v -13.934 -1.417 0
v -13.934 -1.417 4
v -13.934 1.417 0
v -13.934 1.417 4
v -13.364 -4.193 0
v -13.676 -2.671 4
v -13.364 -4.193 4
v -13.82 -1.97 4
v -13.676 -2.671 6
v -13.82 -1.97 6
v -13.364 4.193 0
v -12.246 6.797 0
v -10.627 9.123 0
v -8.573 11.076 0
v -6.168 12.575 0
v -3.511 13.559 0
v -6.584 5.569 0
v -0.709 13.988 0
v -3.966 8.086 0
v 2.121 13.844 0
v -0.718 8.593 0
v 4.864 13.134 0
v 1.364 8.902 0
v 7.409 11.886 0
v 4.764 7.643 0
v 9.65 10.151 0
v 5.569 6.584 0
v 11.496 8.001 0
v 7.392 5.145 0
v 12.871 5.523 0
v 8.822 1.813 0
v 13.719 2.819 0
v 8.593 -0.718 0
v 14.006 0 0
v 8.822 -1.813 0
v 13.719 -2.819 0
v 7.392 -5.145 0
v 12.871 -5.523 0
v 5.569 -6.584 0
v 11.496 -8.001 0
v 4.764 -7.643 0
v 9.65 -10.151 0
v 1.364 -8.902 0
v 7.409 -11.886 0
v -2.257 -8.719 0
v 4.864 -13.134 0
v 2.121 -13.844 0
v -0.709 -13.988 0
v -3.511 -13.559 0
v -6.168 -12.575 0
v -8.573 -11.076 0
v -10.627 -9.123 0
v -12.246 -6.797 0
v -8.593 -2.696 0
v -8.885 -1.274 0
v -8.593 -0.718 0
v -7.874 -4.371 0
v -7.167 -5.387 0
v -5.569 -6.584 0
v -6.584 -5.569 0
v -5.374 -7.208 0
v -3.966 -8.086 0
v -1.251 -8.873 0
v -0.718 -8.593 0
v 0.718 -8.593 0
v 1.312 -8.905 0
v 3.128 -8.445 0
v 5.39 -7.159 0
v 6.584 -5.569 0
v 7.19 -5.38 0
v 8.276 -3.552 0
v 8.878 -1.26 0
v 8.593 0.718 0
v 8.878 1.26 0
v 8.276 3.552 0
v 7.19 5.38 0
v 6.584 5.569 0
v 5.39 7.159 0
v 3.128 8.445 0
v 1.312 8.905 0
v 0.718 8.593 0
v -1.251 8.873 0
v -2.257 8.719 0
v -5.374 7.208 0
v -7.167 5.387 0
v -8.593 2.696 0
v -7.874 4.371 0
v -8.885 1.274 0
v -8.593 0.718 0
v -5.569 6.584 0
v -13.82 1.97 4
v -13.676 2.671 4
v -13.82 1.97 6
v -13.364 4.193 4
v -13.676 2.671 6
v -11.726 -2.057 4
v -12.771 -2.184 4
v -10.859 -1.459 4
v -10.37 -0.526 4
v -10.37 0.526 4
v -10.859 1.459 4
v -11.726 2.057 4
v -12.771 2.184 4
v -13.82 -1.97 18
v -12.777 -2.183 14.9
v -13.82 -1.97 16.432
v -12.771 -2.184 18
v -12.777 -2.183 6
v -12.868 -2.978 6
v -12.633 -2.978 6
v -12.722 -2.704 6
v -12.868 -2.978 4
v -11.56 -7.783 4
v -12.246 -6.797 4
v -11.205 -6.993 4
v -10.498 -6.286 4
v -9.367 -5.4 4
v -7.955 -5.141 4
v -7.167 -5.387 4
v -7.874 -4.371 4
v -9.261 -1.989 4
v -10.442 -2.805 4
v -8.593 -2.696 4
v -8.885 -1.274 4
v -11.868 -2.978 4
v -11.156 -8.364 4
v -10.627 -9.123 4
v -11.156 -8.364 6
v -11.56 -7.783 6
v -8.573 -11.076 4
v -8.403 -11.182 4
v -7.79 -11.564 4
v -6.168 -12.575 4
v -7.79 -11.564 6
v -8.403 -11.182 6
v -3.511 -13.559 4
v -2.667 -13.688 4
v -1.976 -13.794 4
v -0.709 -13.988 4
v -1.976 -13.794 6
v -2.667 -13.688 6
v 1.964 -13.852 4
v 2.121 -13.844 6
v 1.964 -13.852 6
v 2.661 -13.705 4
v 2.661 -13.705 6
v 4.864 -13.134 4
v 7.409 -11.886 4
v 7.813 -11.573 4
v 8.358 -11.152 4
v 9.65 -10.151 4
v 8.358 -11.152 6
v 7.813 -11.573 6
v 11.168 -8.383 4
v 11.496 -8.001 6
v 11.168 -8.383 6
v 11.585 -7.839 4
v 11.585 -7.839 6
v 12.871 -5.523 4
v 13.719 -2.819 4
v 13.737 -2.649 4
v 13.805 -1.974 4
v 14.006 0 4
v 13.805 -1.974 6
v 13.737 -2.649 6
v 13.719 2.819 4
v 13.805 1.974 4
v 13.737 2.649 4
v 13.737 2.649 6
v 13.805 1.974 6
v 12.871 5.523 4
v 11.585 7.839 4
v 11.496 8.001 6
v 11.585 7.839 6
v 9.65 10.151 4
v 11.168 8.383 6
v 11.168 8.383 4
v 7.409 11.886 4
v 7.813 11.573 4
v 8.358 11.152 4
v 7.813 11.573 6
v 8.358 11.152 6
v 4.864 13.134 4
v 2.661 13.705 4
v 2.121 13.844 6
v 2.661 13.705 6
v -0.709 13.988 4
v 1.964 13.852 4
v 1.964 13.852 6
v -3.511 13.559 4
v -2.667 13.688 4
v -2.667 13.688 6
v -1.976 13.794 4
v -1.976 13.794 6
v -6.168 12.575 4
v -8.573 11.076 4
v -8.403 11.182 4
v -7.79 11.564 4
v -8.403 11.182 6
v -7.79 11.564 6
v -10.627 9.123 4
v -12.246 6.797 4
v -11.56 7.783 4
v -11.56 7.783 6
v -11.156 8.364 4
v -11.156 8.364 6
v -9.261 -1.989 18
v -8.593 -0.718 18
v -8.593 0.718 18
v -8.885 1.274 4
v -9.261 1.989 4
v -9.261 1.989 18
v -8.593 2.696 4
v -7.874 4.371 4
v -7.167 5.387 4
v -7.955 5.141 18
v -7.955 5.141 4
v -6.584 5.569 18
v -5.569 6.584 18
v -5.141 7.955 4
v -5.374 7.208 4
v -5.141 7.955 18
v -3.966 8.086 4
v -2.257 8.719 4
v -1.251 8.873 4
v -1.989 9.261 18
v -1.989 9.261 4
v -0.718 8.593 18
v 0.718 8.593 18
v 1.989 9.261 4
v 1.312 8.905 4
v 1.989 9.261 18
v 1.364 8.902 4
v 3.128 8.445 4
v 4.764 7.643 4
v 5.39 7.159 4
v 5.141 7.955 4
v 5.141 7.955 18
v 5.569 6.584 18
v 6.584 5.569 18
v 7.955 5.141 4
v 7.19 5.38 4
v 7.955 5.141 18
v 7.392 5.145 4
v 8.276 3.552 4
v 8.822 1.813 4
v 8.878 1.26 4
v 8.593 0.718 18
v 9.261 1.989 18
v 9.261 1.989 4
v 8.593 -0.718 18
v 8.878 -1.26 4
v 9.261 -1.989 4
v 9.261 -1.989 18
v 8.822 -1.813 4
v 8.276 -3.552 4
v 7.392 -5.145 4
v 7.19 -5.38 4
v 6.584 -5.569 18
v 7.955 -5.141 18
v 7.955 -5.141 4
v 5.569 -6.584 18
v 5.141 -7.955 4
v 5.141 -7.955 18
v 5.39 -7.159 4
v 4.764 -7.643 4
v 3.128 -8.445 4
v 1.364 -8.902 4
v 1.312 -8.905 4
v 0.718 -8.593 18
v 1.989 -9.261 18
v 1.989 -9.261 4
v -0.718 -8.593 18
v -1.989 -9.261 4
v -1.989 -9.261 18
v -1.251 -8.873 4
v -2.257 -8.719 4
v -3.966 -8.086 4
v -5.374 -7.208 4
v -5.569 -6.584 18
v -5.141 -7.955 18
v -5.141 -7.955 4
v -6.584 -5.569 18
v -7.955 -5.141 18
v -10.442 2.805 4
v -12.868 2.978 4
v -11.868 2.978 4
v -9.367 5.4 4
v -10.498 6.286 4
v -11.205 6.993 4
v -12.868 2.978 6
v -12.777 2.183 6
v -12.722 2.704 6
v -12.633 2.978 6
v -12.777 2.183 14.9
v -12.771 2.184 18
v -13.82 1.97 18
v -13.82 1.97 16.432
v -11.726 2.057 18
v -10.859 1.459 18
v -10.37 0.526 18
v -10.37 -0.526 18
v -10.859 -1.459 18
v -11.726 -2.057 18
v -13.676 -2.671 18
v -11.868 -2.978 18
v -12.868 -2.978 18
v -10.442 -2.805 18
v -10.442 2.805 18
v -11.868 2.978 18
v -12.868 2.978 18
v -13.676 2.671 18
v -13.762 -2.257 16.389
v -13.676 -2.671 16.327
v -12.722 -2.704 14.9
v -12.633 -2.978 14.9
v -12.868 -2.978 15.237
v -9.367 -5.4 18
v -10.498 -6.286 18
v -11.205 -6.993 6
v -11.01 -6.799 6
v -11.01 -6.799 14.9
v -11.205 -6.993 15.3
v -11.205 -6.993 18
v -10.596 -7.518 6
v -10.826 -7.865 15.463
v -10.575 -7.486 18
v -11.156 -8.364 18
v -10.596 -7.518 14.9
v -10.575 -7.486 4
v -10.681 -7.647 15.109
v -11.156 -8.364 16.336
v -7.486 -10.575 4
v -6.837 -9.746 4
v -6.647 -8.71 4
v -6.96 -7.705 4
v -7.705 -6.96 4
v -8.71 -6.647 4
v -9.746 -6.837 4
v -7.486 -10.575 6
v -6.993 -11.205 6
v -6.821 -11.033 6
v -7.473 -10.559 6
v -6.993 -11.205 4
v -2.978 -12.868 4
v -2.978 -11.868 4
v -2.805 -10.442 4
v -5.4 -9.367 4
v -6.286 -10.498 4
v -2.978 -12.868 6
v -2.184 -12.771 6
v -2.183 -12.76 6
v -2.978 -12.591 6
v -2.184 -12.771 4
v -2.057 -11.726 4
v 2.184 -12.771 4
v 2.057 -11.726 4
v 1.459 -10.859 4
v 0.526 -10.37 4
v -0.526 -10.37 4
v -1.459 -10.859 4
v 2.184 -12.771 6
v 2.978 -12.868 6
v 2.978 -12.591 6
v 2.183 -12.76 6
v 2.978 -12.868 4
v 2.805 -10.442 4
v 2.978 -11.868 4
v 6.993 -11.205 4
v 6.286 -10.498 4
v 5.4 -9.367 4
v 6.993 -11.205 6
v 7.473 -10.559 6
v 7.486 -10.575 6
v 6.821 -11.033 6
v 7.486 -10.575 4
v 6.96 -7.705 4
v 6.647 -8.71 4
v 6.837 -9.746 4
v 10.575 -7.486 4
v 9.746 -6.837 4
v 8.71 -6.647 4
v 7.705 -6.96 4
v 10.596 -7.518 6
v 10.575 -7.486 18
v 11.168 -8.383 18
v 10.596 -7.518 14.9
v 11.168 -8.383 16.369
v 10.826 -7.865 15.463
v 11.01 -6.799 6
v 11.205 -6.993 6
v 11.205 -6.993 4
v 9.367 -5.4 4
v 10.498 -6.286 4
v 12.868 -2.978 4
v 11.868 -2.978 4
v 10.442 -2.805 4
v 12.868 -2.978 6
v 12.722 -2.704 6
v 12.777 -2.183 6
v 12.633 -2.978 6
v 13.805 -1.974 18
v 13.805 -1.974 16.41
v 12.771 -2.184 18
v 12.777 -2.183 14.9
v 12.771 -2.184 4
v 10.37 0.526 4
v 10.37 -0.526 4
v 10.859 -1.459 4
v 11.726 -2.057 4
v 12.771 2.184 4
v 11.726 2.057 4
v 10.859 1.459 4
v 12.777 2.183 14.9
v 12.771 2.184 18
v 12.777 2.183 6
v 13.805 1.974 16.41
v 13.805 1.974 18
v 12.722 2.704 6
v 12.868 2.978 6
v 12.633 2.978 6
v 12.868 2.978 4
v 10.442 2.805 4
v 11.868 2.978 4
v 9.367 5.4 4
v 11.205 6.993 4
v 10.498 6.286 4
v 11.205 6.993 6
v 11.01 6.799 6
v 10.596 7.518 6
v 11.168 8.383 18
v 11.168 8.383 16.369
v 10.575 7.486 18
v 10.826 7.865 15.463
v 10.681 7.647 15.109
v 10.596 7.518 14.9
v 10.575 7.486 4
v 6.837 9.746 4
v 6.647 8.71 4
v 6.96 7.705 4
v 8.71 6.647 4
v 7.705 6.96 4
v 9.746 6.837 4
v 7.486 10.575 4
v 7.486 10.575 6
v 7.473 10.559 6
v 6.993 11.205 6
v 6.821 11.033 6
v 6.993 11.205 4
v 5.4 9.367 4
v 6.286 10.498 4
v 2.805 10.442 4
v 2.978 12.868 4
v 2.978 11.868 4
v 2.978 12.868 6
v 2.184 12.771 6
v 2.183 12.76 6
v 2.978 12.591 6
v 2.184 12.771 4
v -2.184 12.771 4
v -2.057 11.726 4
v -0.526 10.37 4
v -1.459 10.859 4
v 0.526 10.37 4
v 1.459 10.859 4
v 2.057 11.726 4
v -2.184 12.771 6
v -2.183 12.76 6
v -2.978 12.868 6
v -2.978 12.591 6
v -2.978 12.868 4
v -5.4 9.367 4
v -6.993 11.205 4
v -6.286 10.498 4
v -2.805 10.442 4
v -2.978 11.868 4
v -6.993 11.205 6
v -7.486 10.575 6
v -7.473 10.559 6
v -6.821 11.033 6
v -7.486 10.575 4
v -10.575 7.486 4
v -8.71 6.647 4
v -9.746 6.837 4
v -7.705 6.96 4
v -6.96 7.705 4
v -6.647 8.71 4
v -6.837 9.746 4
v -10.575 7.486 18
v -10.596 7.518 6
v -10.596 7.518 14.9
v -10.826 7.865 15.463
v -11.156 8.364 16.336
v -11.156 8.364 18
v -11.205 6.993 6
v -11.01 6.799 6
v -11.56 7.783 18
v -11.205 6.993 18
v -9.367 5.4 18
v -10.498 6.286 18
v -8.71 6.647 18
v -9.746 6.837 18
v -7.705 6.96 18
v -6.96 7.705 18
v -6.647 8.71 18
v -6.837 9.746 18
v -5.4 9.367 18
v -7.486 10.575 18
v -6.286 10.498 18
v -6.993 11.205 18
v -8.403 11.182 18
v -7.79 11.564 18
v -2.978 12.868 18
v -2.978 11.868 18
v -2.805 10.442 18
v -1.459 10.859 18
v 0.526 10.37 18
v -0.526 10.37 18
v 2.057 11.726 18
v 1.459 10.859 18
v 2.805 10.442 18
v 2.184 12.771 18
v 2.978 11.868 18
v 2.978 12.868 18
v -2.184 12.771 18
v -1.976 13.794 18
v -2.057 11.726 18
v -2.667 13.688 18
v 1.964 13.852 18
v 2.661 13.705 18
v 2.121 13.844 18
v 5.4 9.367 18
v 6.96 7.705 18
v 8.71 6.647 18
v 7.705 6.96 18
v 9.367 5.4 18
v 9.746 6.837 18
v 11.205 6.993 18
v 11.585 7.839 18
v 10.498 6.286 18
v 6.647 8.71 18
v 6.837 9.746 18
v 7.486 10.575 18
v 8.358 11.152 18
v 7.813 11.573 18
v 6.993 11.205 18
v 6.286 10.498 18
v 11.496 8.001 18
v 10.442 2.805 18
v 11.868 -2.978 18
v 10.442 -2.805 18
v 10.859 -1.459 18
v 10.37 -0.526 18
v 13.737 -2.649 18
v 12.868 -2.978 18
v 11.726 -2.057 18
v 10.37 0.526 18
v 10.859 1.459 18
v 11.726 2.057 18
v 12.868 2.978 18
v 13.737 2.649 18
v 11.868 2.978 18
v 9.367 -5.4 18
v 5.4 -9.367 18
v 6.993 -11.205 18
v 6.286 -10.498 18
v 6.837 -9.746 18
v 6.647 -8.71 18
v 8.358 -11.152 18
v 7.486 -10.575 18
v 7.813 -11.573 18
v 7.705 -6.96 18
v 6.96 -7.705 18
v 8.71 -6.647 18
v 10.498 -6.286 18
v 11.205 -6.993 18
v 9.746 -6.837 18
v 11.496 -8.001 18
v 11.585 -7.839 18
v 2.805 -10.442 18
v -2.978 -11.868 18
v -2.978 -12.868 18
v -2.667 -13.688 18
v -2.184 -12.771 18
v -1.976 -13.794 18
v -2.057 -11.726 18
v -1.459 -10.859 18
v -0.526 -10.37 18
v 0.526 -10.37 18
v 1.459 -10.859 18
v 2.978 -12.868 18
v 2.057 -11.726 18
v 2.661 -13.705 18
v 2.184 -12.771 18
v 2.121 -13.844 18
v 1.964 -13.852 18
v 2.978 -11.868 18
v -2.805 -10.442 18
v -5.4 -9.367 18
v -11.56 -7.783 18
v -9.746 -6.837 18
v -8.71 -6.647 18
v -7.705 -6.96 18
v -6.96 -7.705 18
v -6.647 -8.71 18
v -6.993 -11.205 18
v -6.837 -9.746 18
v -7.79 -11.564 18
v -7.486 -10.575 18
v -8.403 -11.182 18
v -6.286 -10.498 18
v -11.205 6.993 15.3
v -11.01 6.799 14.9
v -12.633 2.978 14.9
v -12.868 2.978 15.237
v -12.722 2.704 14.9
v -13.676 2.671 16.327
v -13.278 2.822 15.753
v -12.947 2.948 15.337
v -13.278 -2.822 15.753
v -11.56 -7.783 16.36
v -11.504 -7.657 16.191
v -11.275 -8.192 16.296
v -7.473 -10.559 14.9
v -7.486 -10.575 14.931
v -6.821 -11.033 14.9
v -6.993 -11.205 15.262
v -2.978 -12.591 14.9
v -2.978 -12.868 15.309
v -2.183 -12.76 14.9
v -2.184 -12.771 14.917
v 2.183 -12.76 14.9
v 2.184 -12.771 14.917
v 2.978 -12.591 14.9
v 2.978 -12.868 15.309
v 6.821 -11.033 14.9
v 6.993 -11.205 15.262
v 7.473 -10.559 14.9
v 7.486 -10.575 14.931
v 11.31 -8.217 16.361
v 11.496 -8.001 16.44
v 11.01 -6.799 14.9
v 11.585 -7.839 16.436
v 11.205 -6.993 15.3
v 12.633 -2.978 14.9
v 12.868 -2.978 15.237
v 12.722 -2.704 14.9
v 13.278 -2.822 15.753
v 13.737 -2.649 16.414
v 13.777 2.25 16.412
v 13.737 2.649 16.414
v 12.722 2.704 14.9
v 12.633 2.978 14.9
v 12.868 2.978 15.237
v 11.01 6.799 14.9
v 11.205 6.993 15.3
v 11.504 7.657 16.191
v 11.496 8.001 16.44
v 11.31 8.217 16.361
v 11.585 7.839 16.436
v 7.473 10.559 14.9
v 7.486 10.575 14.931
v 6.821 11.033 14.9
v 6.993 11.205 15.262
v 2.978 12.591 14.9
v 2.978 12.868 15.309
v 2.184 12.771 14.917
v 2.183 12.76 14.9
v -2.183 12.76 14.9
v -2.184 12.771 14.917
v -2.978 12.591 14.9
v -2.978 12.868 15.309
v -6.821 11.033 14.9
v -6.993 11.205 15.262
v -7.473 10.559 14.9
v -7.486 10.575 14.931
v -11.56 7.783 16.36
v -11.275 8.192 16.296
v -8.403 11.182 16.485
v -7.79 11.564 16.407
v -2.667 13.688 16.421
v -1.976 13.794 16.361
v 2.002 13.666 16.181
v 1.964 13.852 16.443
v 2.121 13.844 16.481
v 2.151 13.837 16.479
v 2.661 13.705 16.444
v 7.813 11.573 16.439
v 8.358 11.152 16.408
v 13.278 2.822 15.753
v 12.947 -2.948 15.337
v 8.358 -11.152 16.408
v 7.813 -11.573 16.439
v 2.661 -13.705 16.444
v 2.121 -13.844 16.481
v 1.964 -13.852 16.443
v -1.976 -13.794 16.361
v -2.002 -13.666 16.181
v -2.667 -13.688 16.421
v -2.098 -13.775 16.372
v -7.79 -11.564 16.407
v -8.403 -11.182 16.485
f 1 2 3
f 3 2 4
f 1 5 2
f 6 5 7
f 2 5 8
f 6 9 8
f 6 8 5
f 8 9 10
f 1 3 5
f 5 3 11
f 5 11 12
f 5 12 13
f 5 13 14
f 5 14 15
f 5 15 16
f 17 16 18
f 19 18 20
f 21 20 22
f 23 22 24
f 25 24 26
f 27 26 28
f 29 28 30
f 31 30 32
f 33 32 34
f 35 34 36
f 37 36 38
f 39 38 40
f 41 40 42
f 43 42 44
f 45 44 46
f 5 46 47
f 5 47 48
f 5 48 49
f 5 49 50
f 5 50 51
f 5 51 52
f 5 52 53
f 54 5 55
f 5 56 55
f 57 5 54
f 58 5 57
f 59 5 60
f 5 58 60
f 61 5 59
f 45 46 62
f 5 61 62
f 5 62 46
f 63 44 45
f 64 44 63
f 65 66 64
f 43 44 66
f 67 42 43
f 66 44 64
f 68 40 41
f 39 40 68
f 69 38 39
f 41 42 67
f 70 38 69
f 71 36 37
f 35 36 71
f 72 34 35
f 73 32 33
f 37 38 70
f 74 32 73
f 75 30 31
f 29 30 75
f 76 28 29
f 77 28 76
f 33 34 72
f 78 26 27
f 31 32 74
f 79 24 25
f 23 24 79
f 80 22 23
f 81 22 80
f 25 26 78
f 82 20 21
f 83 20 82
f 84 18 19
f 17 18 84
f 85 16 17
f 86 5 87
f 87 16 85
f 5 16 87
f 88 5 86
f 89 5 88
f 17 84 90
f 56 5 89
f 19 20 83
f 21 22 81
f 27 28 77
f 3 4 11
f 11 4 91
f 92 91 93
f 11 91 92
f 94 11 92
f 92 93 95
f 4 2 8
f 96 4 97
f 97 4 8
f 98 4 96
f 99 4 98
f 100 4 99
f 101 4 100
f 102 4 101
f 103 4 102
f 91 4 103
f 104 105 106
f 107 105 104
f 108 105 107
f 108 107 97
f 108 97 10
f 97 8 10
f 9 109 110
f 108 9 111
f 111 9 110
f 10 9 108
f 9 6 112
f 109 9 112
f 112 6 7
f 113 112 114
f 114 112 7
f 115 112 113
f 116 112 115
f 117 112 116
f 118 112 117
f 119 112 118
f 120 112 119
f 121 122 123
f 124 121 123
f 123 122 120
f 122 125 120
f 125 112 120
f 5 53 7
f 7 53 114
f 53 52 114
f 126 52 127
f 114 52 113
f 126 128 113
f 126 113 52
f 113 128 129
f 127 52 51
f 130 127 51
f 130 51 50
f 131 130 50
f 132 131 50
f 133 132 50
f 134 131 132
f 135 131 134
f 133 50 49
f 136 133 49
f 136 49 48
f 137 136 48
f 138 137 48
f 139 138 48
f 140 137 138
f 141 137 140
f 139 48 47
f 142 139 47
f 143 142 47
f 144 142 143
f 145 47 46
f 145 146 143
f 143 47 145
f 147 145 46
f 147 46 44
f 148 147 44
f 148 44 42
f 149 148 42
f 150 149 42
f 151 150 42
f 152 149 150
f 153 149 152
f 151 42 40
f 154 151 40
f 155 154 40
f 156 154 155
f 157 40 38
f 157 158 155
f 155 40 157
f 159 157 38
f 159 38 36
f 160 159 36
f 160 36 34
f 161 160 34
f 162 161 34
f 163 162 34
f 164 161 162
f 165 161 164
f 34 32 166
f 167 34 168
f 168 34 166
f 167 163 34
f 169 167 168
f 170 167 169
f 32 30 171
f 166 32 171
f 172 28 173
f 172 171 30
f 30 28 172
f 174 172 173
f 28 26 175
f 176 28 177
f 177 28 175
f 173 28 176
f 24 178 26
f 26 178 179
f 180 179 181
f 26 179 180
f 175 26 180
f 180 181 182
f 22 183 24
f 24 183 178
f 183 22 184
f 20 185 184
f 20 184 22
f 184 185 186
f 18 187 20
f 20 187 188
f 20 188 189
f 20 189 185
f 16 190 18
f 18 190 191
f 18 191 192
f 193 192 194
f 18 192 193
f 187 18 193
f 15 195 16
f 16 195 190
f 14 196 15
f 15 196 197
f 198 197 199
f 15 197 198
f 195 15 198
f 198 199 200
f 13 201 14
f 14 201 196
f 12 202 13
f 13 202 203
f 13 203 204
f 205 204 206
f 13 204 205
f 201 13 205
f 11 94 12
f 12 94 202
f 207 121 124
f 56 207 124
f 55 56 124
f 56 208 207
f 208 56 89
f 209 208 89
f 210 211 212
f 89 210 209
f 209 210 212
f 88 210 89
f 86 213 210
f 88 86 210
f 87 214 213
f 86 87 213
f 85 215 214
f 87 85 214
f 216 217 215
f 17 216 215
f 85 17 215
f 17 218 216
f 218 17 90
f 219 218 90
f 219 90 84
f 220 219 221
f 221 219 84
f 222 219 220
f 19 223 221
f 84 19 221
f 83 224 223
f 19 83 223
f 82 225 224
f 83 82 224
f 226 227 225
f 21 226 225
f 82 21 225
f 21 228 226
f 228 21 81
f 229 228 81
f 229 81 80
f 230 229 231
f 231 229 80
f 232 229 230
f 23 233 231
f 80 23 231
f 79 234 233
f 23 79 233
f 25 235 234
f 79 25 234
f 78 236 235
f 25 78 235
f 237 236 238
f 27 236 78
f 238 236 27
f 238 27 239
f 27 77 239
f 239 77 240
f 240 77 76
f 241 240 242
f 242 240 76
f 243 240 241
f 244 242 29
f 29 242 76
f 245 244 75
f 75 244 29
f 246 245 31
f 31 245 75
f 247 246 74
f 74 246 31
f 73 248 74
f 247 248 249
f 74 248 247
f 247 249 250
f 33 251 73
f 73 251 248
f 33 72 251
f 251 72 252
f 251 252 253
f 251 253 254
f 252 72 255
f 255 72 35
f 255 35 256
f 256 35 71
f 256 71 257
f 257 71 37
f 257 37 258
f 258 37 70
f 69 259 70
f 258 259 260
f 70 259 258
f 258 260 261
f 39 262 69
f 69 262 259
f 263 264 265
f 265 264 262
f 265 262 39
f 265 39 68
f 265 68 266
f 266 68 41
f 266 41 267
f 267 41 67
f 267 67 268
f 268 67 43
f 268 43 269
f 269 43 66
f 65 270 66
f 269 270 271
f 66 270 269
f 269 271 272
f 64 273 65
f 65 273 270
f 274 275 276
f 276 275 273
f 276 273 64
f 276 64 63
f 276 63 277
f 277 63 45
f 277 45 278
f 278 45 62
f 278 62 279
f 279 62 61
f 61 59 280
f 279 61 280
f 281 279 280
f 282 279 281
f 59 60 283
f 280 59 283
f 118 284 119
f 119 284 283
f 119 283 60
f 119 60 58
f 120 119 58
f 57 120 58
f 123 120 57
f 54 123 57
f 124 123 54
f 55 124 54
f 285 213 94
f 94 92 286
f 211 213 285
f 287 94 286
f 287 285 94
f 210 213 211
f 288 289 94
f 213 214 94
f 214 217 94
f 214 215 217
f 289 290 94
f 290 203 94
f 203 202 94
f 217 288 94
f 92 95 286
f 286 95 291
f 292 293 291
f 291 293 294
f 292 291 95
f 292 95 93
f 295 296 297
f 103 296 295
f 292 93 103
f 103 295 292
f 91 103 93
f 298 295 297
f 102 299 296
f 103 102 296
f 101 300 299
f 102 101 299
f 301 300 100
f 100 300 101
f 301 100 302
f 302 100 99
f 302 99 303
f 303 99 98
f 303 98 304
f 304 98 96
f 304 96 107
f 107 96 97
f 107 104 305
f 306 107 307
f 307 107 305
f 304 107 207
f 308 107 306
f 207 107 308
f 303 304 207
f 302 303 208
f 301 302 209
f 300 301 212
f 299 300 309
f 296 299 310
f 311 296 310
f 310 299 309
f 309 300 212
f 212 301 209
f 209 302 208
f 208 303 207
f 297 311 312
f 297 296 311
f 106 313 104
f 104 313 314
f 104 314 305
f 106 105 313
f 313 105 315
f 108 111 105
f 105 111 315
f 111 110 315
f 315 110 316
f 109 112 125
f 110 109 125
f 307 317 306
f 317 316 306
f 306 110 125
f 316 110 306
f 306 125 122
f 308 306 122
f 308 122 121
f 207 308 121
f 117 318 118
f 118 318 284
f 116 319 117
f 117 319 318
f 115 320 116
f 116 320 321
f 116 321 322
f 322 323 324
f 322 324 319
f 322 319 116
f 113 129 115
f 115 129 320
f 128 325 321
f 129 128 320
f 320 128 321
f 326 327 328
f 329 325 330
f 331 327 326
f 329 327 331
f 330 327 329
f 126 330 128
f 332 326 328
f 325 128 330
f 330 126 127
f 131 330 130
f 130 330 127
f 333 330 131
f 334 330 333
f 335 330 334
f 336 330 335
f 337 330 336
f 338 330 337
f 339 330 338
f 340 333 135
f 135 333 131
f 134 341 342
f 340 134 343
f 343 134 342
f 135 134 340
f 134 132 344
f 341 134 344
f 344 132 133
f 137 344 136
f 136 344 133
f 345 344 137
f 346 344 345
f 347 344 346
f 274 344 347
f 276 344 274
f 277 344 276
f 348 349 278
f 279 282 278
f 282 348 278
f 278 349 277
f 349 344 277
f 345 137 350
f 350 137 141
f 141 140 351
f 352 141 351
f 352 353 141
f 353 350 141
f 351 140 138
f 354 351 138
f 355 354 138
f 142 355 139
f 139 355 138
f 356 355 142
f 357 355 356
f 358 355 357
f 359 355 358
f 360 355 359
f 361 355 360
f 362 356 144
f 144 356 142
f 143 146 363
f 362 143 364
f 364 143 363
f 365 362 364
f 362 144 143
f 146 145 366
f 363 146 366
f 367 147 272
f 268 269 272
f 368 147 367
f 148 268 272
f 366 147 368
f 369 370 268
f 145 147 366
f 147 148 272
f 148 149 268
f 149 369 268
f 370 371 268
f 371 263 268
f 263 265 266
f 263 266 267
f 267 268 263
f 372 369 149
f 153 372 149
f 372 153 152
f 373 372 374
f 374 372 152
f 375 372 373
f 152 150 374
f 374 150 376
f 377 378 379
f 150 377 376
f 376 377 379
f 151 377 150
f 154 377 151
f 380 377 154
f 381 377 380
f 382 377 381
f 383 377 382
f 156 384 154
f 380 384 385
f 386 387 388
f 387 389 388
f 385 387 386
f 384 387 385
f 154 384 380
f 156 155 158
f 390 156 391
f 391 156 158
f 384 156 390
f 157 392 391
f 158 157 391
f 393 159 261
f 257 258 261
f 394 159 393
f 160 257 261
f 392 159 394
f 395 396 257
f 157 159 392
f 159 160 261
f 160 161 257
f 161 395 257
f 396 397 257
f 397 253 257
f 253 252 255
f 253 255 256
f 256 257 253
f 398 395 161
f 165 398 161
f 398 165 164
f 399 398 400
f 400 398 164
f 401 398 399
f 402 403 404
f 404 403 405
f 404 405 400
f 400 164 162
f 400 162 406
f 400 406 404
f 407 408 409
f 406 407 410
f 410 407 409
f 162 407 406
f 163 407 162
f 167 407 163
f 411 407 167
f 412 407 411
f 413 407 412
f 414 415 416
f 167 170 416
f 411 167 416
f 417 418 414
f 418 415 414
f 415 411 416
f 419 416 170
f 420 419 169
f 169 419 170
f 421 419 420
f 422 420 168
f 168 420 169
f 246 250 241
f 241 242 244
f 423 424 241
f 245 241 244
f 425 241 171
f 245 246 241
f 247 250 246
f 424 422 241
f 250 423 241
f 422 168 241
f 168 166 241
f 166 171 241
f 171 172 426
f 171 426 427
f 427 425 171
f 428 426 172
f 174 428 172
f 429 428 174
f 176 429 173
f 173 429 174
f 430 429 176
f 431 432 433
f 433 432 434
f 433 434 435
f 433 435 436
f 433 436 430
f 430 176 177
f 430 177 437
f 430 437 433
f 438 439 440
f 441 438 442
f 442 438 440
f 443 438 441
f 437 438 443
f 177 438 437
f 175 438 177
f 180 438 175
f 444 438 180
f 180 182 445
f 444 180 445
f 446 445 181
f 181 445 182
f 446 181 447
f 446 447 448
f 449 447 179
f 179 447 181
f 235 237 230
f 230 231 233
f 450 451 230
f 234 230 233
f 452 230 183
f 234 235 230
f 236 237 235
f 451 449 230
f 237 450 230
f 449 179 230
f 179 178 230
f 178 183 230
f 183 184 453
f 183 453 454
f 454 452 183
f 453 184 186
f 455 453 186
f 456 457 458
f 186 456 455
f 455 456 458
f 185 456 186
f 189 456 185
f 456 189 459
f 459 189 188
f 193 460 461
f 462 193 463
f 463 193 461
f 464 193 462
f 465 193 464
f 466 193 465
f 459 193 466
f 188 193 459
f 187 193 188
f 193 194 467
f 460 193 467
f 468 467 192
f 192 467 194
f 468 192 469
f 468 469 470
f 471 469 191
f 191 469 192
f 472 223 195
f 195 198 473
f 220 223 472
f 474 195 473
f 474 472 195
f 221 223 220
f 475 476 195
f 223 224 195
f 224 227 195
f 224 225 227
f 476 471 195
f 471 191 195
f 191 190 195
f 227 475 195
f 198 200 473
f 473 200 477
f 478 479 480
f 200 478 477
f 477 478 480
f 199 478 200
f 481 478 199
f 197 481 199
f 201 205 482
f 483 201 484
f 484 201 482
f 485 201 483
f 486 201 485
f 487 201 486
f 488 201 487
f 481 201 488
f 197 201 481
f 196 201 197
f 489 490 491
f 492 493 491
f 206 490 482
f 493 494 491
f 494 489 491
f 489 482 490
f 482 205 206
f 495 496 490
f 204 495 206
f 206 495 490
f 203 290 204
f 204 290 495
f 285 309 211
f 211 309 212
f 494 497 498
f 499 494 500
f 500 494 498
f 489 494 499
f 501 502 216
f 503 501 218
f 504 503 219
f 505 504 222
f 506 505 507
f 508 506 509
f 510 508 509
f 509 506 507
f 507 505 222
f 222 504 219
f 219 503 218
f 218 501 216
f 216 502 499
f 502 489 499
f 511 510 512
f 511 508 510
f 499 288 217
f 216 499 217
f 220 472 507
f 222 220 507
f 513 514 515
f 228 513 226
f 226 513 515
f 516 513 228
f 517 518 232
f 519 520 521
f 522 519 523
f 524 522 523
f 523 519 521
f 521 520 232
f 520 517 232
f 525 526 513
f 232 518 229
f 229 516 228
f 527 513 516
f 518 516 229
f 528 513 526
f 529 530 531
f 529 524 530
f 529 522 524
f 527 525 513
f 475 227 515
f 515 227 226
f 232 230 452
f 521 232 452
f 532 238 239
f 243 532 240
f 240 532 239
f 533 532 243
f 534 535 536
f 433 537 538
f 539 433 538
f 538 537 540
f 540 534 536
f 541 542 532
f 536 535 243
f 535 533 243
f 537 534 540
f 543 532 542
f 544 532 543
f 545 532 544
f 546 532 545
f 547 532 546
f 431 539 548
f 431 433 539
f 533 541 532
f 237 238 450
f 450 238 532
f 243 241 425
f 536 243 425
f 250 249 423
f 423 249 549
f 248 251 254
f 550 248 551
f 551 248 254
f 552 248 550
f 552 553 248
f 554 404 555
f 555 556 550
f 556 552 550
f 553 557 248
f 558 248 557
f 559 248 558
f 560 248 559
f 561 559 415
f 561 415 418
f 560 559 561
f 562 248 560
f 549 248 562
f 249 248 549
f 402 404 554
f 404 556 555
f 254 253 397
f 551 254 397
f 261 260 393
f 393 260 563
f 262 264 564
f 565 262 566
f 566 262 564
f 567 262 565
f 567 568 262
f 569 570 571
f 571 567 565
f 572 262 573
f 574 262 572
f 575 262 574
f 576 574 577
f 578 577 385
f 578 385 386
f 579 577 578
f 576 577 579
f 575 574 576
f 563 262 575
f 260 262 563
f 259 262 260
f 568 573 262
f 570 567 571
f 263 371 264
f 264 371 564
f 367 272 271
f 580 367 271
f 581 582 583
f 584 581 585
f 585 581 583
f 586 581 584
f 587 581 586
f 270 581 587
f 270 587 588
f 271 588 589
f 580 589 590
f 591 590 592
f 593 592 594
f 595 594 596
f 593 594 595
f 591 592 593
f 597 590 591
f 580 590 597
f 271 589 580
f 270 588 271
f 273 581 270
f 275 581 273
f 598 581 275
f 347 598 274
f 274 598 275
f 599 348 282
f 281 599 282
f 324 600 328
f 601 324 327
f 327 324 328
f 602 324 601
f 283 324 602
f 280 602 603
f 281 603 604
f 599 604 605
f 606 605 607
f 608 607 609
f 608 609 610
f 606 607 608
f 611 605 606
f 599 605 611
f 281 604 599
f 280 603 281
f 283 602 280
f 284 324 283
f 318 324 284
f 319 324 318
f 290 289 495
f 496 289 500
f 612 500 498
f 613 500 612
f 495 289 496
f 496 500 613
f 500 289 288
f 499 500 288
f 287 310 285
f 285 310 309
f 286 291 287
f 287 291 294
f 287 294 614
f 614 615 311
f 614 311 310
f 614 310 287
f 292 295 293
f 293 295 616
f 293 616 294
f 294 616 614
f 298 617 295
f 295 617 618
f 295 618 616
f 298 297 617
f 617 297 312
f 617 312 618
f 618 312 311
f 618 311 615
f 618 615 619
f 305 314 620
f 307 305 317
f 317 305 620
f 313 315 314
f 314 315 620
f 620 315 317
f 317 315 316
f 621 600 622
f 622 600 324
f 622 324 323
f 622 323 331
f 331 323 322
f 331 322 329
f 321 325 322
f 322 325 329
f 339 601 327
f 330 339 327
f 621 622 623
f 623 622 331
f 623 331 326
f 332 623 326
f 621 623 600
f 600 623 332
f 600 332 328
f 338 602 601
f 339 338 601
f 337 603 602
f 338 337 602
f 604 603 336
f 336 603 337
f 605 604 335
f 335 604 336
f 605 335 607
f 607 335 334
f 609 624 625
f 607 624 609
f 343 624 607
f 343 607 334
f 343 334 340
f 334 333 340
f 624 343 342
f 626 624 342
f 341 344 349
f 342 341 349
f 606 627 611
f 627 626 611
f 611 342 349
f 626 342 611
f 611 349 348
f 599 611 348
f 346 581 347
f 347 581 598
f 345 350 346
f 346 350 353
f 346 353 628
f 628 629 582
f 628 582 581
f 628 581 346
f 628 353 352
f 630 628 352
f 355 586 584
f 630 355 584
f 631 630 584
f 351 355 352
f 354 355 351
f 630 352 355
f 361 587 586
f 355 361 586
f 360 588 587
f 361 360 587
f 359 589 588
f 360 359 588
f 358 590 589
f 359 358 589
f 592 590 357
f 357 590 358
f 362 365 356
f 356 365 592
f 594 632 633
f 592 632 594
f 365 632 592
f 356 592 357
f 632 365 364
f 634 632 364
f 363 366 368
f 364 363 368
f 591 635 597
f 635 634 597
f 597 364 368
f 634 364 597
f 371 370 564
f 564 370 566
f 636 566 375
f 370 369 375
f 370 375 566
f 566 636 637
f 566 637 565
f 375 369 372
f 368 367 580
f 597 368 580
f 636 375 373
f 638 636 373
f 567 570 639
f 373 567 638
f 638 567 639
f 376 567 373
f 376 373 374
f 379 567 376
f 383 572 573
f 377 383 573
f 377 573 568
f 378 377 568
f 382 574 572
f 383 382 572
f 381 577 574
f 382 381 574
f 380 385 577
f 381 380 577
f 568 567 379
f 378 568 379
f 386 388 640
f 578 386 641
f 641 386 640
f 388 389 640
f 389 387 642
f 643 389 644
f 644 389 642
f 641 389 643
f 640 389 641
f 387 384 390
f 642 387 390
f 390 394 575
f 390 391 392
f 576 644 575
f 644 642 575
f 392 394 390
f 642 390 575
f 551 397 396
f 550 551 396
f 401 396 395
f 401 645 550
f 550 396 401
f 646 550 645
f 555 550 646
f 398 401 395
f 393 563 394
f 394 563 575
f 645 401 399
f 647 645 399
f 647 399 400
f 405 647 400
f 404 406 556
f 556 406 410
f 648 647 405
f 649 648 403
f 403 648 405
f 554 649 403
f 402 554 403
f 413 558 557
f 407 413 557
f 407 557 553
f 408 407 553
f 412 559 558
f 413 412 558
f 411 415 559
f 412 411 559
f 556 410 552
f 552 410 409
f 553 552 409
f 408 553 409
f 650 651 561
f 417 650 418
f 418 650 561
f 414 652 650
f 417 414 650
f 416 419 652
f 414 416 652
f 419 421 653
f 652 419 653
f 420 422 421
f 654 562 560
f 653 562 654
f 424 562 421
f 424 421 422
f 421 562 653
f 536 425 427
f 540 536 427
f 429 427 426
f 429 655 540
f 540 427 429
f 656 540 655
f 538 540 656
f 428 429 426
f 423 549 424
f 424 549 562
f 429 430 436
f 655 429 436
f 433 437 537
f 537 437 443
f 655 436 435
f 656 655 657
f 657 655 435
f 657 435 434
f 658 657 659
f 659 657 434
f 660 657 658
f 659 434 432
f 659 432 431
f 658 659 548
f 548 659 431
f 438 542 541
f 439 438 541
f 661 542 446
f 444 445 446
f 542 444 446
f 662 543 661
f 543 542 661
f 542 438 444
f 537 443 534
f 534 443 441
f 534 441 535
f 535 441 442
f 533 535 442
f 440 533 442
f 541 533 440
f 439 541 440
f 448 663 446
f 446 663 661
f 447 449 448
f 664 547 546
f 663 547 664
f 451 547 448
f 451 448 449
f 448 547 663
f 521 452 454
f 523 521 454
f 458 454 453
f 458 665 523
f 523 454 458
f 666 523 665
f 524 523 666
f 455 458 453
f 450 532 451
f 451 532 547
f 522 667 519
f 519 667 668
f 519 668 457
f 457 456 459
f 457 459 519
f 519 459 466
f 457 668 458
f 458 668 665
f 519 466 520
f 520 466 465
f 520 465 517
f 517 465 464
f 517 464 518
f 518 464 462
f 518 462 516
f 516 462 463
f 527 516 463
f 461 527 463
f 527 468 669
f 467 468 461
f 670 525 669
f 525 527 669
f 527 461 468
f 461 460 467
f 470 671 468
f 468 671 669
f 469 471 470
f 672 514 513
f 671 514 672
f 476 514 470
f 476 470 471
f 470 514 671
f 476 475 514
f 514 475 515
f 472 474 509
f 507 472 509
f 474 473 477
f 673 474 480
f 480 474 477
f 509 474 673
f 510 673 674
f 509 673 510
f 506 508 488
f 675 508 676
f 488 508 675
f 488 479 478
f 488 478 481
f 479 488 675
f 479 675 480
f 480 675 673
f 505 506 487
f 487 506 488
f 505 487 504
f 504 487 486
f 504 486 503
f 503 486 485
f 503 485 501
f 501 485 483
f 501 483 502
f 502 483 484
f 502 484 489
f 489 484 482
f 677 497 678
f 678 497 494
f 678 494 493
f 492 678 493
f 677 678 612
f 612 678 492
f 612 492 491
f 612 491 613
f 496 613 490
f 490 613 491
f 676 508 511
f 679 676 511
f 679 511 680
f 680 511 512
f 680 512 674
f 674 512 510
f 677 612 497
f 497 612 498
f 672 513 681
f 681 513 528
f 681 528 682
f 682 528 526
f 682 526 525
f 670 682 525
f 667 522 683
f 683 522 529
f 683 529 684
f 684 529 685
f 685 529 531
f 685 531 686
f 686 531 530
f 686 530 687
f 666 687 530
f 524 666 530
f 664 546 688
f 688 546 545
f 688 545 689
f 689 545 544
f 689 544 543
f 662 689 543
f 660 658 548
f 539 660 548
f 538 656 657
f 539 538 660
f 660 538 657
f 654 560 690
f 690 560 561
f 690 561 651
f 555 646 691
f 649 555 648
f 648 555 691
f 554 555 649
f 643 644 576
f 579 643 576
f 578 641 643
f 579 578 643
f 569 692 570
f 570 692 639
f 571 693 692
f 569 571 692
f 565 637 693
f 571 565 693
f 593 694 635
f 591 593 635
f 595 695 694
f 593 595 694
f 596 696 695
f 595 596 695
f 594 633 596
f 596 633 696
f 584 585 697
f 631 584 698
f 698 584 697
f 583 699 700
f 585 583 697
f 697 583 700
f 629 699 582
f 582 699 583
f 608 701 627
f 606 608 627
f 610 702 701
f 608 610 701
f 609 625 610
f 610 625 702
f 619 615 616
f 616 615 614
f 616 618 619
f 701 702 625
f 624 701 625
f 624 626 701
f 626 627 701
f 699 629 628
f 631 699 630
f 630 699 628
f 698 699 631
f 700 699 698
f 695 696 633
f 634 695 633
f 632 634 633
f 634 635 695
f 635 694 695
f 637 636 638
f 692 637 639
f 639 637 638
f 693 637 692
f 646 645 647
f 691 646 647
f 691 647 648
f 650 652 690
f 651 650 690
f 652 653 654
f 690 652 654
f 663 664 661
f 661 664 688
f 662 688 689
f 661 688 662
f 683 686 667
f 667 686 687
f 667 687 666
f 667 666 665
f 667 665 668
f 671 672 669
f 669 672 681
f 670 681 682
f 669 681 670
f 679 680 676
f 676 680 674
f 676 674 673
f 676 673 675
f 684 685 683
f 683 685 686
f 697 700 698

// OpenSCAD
/*
    Openscad Rubber-band Loom.

    This is a rubber-band loom for weaving.

    Copyright (C) 2014. Tim Molteno, tim@molteno.net
  
    This program is free software: you can redistribute it and/or modify
    it under the terms of the GNU General Public License as published by
    the Free Software Foundation, either version 3 of the License, or
    (at your option) any later version.

    This program is distributed in the hope that it will be useful,
    but WITHOUT ANY WARRANTY; without even the implied warranty of
    MERCHANTABILITY or FITNESS FOR A PARTICULAR PURPOSE.  See the
    GNU General Public License for more details.

    You should have received a copy of the GNU General Public License
    along with this program.  If not, see <http://www.gnu.org/licenses/>.
*/

n_posts      = 8;     /* Number of posts */
post_spacing = 11.0;  /* Spacing between posts around perimeter */
post_height  = 18.0;  /* Height of the Loom from Bottom to top */
base_height  = 4.0;   /* Height of the base (mm) */

width = (post_spacing*n_posts) / 3.1415;
center = width - 10.0;
step_angle = 360 / n_posts;


module post(h) {
  difference() {
    hull() {
      cylinder(r = 3, h=h, $fn=13);
      translate([-1,0,0]) cylinder(r = 3, h=h, $fn=13);
    }
    hull() {
      translate([0,0,-1]) cylinder(r = 2.2, h=h + 2, $fn=13);
      translate([2,0,-1]) cylinder(r = 1.8, h=h + 2, $fn=13);
    }
  }
}


module base() {
  
  for (angle = [0:step_angle:(360 - step_angle)]) {
    rotate(angle)  translate([width/2-1.5,0,0]) post(post_height);
  }
  difference() {
    cylinder(r=width/2, h=base_height,$fn=31);
    translate([0,0,-1]) cylinder(r=center/2, h=12, $fn=31); // Center Hole
  }
}


intersection() {
  difference() {
    base();
    translate([0,0,6]) difference() {
      cylinder(r=width, h=17);
      translate([0,0,8.9]) cylinder(r2=width/2+5, r1=width/2-1, h=9);
      translate([0,0,-0.5]) cylinder(r=width/2-1, h=10);
    }
  }
  cylinder(r=width/2, h=50, $fn=31);
}
